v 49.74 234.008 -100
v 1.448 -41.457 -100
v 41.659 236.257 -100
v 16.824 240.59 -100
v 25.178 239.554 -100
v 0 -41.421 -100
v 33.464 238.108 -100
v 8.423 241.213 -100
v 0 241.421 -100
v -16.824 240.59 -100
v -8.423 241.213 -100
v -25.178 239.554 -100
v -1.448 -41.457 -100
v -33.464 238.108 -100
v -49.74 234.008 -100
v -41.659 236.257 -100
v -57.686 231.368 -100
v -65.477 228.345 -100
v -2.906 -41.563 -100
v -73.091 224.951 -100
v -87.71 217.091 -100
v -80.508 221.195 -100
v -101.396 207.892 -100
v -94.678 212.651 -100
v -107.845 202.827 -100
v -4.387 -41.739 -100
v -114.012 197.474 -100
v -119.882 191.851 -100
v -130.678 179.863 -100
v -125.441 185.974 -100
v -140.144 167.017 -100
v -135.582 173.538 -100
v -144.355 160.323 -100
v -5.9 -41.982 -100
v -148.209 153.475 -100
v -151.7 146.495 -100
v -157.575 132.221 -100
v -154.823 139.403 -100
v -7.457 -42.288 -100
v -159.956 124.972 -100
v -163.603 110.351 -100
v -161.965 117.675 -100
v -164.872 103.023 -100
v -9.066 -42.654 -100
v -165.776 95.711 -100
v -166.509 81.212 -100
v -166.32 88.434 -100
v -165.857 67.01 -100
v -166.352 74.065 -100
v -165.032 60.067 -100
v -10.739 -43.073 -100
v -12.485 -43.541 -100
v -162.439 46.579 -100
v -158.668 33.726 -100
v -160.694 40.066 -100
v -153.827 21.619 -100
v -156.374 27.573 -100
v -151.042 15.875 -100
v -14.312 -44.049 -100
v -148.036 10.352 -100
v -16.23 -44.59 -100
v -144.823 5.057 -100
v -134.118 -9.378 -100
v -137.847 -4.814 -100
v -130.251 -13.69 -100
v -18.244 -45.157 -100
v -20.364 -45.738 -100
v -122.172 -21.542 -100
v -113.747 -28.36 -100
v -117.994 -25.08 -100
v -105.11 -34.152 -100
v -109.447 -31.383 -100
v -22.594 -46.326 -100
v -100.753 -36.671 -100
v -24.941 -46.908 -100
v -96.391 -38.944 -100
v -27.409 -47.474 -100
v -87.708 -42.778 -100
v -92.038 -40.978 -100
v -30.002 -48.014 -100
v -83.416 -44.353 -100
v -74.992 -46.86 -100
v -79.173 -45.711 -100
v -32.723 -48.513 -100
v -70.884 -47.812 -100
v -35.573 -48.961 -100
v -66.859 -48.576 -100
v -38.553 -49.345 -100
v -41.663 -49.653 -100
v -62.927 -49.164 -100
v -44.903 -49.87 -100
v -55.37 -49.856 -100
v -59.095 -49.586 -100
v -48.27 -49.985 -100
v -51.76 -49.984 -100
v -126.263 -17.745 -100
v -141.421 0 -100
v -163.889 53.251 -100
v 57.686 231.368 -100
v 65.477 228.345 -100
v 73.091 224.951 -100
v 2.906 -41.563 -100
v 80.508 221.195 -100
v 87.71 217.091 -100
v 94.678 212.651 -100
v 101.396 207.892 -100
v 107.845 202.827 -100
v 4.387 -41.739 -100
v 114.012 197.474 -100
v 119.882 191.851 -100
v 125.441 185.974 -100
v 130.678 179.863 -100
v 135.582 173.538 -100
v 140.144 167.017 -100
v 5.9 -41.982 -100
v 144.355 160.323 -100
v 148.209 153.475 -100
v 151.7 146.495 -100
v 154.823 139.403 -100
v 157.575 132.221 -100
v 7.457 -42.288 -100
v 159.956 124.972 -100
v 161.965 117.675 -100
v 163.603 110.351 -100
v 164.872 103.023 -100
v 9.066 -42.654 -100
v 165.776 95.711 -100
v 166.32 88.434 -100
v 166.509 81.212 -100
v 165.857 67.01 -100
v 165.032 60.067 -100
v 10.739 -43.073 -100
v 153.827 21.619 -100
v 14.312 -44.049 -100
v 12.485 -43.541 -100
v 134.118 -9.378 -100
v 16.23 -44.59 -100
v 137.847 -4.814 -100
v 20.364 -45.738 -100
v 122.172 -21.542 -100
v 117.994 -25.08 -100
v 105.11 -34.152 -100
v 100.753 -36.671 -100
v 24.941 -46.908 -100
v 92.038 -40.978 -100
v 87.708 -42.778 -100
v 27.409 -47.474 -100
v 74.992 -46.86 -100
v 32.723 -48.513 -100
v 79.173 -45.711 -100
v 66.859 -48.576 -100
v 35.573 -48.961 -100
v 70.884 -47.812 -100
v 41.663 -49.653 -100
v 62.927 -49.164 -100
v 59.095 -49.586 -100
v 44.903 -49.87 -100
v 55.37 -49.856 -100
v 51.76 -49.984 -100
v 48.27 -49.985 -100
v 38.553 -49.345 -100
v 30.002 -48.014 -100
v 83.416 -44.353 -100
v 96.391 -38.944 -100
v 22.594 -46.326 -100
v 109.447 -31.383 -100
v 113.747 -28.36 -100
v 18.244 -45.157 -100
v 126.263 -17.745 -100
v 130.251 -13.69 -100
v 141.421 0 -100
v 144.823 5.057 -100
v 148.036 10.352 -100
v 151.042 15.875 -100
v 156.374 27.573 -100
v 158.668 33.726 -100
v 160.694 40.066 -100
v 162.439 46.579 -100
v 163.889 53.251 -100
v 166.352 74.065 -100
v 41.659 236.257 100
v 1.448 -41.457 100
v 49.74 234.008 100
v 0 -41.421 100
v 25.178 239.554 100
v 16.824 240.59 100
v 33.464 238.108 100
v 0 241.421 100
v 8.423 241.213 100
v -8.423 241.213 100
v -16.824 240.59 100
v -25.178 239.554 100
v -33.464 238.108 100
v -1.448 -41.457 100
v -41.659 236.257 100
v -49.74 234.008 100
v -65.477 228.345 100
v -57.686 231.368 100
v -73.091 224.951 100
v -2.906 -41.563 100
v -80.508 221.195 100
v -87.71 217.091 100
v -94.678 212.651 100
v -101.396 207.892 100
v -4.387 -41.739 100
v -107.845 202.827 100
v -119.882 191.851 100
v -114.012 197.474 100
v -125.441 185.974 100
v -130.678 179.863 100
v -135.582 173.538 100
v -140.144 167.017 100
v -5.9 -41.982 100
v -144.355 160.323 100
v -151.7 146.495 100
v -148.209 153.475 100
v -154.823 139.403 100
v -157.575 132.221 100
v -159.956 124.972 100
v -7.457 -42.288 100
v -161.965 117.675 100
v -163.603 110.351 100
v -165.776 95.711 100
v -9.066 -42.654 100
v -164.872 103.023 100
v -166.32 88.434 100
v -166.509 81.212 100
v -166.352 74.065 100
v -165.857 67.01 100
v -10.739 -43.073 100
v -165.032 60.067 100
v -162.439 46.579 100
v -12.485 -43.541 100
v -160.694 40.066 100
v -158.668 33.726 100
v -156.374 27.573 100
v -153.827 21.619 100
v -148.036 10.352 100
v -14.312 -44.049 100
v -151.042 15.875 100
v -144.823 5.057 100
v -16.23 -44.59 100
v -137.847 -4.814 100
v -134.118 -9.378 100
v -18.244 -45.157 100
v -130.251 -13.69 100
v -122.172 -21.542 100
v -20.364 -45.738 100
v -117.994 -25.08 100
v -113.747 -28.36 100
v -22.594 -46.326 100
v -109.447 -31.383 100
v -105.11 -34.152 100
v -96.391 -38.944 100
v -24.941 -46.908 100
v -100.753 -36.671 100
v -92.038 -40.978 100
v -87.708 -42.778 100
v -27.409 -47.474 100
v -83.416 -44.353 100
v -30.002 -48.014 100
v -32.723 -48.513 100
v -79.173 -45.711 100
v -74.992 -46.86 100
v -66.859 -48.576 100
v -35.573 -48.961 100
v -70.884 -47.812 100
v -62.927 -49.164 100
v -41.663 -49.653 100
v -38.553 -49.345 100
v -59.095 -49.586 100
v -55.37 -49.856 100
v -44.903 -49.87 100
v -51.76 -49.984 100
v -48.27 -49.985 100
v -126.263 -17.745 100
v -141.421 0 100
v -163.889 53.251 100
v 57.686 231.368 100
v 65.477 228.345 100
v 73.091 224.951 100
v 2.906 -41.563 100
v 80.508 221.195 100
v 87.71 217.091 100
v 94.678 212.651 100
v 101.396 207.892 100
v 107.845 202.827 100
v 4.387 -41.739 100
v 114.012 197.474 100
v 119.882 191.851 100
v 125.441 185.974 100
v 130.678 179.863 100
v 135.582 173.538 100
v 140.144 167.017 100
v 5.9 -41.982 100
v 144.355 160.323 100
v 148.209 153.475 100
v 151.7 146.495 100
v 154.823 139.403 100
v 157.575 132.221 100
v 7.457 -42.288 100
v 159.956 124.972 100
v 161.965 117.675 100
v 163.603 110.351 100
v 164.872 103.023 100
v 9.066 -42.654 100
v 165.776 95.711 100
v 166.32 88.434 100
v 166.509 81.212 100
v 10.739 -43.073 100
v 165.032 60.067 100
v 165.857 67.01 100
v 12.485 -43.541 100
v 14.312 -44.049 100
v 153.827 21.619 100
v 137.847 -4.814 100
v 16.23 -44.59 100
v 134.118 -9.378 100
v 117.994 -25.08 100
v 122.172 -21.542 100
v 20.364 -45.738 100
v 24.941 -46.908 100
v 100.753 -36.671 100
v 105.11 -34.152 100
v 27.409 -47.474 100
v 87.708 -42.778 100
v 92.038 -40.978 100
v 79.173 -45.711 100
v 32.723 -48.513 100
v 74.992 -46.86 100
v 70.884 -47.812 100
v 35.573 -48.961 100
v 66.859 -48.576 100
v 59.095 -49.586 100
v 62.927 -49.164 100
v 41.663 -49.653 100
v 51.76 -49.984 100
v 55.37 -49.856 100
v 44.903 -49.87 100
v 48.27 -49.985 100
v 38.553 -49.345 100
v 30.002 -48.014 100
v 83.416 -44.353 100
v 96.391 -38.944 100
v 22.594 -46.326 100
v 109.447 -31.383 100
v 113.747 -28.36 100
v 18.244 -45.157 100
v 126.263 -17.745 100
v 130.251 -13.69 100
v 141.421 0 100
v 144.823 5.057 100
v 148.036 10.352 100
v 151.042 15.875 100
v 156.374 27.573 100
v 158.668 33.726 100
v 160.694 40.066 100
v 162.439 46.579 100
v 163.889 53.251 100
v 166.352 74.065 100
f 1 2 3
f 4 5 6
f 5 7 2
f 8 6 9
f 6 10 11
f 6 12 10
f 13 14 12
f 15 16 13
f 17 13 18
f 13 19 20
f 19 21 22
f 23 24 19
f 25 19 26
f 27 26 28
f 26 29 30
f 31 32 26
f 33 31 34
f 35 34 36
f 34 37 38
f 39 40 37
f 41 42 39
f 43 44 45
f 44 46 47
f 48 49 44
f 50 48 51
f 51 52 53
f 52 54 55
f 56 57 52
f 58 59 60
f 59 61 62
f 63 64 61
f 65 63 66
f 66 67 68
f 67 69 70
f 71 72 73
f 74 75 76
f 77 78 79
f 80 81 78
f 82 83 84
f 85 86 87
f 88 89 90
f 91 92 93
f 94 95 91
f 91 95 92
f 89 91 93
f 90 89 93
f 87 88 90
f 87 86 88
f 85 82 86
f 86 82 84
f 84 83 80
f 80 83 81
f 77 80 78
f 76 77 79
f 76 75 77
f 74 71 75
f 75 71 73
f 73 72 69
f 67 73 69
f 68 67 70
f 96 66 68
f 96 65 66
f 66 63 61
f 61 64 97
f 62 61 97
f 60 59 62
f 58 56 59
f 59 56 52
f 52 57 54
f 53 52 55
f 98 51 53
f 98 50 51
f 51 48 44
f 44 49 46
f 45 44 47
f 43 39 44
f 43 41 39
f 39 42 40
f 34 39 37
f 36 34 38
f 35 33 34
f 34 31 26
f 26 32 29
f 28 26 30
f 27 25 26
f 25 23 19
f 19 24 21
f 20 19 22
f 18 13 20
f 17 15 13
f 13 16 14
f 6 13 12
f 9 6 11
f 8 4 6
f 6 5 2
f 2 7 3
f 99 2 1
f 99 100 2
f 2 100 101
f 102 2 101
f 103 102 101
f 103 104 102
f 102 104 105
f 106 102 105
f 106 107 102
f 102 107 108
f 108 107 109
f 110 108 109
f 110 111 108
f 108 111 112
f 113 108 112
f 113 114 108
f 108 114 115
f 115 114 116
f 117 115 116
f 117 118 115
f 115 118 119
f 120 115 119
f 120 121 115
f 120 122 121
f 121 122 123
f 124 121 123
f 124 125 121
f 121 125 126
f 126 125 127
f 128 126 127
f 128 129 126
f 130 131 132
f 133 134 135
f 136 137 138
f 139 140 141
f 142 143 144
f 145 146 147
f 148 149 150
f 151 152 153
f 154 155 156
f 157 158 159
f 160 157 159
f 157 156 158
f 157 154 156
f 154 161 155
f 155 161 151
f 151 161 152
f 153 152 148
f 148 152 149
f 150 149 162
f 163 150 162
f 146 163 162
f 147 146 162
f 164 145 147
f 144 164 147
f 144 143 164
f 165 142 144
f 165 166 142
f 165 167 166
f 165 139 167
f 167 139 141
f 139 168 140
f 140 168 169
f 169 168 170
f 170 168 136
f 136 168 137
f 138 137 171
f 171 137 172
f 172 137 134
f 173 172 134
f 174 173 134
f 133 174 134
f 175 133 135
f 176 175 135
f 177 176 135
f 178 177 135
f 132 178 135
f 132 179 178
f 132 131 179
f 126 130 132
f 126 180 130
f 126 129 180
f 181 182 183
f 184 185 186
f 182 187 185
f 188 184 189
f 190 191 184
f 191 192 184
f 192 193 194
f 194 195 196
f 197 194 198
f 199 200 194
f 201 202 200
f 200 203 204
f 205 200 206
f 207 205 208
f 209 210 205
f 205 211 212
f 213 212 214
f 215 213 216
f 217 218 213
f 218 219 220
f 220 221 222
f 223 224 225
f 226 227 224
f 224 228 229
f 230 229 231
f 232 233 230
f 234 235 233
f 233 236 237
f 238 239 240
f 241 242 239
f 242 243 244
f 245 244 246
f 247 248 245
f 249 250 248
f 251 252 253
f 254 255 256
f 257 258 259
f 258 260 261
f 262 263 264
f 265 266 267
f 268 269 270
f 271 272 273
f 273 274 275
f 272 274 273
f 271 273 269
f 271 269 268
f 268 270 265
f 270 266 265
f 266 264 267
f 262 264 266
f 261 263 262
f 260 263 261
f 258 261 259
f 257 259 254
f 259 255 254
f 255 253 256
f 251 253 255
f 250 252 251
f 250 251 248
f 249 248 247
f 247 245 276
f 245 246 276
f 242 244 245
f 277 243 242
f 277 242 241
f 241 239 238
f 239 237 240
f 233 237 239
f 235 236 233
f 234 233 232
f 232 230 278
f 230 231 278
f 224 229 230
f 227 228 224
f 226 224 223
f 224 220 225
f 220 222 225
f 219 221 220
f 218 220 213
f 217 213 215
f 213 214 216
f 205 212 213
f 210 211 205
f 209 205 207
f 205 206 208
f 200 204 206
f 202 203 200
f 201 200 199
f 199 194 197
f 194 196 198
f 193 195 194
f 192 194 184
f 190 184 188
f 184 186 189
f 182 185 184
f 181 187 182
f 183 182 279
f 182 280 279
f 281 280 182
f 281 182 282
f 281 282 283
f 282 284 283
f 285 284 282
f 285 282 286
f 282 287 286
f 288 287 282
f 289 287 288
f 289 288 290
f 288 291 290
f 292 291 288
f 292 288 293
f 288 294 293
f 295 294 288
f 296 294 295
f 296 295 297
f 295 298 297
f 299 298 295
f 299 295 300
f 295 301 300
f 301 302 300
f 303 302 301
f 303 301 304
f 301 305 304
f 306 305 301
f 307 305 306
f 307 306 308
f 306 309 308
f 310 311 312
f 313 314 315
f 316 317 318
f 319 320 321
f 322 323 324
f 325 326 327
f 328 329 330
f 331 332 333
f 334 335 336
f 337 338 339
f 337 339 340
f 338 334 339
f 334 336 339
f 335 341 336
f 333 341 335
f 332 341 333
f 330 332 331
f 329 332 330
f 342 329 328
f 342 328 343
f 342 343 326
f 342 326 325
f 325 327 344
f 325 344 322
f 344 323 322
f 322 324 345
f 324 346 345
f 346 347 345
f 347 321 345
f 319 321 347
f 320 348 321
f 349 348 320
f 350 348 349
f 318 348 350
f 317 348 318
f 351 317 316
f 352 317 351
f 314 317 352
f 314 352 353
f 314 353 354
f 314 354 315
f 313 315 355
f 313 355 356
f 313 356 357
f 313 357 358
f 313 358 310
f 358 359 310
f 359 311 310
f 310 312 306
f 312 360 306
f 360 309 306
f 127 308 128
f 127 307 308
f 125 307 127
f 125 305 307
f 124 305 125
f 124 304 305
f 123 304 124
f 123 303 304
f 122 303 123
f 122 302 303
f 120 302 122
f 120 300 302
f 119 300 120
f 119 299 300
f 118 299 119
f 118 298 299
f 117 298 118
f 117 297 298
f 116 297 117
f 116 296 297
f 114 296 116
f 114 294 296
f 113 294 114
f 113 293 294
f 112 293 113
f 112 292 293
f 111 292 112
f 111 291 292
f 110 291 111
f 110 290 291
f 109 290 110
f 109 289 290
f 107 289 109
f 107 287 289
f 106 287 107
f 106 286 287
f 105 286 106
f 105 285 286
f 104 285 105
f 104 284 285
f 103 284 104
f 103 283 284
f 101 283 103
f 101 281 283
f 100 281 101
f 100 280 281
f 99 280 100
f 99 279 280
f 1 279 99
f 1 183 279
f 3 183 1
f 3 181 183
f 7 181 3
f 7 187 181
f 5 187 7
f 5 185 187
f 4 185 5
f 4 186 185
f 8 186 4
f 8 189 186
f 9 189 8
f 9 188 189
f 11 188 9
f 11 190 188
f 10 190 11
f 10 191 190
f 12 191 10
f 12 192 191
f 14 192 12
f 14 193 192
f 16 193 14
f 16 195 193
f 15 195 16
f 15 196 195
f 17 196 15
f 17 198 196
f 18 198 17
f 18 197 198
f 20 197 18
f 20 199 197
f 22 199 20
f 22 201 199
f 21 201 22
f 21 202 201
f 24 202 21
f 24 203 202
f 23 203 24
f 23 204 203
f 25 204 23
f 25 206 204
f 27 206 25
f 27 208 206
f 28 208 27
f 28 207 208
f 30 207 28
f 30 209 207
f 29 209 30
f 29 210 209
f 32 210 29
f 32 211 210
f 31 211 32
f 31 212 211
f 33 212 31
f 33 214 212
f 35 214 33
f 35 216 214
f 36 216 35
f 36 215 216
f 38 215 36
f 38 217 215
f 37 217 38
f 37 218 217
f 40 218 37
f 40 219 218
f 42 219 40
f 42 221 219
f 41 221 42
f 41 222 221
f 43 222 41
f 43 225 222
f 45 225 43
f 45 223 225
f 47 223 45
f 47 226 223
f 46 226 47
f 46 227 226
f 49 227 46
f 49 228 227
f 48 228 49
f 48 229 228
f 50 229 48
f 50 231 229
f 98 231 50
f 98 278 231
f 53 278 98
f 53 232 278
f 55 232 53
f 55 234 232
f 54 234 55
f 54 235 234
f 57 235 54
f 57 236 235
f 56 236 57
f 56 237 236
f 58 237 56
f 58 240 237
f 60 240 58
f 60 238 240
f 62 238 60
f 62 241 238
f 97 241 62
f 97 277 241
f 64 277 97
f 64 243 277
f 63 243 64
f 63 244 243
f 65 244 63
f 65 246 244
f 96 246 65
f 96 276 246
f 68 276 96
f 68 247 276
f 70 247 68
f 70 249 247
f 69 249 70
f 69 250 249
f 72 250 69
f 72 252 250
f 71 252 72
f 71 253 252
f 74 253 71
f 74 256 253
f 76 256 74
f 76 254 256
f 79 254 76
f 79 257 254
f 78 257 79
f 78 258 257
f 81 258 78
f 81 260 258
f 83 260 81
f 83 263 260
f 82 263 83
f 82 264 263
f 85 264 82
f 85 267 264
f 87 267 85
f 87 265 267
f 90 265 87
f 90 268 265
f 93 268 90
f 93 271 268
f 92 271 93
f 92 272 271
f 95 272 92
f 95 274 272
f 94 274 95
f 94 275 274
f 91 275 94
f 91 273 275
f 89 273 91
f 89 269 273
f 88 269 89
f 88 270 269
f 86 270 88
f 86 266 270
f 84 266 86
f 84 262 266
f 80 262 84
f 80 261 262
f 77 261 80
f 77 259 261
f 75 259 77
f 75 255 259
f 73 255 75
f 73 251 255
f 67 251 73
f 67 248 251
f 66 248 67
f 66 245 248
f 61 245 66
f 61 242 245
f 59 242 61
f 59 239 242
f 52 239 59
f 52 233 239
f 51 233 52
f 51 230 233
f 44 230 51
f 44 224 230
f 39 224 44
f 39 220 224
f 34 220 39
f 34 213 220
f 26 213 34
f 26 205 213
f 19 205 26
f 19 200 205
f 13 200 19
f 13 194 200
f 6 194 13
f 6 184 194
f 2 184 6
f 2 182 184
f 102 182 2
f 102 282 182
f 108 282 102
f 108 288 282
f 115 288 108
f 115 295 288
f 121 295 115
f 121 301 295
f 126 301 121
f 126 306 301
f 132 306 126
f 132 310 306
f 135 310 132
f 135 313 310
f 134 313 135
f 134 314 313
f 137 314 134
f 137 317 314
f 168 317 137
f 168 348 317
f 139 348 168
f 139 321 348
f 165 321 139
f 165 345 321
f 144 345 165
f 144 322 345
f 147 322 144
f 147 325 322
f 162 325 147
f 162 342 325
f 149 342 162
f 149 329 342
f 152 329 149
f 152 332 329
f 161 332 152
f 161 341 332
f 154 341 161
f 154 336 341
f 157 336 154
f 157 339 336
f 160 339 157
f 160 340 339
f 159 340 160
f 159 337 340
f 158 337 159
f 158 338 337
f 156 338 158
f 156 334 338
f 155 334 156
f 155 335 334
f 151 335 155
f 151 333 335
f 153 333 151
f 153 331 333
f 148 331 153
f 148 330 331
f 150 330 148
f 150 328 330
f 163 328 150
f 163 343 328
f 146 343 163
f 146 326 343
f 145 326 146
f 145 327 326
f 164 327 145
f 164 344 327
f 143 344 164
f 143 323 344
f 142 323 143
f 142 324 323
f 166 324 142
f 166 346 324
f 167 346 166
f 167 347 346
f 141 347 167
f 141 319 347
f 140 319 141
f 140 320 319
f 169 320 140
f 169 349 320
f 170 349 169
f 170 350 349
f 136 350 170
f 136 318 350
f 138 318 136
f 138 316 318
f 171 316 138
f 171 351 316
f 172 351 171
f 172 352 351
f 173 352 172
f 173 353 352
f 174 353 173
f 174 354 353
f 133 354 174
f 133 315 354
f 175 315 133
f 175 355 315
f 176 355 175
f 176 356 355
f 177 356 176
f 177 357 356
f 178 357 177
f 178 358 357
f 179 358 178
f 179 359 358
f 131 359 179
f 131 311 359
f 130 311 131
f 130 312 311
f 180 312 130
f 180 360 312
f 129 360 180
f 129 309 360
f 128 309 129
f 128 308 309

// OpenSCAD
// Pascal's snail as cylinder

a = 100;
l = a * sqrt (2);
h = 200;

function x(fi) = (a * cos (fi) + l) * cos (fi);
function y(fi) = (a * cos (fi) + l) * sin (fi);

ps = [
    for (fi = [0 : 2 : 360]) [x (fi), y (fi)]
];

translate ([0, 0, -h/2])
    rotate ([0, 0, 90])
        linear_extrude (height = h)
            polygon (points = ps);
